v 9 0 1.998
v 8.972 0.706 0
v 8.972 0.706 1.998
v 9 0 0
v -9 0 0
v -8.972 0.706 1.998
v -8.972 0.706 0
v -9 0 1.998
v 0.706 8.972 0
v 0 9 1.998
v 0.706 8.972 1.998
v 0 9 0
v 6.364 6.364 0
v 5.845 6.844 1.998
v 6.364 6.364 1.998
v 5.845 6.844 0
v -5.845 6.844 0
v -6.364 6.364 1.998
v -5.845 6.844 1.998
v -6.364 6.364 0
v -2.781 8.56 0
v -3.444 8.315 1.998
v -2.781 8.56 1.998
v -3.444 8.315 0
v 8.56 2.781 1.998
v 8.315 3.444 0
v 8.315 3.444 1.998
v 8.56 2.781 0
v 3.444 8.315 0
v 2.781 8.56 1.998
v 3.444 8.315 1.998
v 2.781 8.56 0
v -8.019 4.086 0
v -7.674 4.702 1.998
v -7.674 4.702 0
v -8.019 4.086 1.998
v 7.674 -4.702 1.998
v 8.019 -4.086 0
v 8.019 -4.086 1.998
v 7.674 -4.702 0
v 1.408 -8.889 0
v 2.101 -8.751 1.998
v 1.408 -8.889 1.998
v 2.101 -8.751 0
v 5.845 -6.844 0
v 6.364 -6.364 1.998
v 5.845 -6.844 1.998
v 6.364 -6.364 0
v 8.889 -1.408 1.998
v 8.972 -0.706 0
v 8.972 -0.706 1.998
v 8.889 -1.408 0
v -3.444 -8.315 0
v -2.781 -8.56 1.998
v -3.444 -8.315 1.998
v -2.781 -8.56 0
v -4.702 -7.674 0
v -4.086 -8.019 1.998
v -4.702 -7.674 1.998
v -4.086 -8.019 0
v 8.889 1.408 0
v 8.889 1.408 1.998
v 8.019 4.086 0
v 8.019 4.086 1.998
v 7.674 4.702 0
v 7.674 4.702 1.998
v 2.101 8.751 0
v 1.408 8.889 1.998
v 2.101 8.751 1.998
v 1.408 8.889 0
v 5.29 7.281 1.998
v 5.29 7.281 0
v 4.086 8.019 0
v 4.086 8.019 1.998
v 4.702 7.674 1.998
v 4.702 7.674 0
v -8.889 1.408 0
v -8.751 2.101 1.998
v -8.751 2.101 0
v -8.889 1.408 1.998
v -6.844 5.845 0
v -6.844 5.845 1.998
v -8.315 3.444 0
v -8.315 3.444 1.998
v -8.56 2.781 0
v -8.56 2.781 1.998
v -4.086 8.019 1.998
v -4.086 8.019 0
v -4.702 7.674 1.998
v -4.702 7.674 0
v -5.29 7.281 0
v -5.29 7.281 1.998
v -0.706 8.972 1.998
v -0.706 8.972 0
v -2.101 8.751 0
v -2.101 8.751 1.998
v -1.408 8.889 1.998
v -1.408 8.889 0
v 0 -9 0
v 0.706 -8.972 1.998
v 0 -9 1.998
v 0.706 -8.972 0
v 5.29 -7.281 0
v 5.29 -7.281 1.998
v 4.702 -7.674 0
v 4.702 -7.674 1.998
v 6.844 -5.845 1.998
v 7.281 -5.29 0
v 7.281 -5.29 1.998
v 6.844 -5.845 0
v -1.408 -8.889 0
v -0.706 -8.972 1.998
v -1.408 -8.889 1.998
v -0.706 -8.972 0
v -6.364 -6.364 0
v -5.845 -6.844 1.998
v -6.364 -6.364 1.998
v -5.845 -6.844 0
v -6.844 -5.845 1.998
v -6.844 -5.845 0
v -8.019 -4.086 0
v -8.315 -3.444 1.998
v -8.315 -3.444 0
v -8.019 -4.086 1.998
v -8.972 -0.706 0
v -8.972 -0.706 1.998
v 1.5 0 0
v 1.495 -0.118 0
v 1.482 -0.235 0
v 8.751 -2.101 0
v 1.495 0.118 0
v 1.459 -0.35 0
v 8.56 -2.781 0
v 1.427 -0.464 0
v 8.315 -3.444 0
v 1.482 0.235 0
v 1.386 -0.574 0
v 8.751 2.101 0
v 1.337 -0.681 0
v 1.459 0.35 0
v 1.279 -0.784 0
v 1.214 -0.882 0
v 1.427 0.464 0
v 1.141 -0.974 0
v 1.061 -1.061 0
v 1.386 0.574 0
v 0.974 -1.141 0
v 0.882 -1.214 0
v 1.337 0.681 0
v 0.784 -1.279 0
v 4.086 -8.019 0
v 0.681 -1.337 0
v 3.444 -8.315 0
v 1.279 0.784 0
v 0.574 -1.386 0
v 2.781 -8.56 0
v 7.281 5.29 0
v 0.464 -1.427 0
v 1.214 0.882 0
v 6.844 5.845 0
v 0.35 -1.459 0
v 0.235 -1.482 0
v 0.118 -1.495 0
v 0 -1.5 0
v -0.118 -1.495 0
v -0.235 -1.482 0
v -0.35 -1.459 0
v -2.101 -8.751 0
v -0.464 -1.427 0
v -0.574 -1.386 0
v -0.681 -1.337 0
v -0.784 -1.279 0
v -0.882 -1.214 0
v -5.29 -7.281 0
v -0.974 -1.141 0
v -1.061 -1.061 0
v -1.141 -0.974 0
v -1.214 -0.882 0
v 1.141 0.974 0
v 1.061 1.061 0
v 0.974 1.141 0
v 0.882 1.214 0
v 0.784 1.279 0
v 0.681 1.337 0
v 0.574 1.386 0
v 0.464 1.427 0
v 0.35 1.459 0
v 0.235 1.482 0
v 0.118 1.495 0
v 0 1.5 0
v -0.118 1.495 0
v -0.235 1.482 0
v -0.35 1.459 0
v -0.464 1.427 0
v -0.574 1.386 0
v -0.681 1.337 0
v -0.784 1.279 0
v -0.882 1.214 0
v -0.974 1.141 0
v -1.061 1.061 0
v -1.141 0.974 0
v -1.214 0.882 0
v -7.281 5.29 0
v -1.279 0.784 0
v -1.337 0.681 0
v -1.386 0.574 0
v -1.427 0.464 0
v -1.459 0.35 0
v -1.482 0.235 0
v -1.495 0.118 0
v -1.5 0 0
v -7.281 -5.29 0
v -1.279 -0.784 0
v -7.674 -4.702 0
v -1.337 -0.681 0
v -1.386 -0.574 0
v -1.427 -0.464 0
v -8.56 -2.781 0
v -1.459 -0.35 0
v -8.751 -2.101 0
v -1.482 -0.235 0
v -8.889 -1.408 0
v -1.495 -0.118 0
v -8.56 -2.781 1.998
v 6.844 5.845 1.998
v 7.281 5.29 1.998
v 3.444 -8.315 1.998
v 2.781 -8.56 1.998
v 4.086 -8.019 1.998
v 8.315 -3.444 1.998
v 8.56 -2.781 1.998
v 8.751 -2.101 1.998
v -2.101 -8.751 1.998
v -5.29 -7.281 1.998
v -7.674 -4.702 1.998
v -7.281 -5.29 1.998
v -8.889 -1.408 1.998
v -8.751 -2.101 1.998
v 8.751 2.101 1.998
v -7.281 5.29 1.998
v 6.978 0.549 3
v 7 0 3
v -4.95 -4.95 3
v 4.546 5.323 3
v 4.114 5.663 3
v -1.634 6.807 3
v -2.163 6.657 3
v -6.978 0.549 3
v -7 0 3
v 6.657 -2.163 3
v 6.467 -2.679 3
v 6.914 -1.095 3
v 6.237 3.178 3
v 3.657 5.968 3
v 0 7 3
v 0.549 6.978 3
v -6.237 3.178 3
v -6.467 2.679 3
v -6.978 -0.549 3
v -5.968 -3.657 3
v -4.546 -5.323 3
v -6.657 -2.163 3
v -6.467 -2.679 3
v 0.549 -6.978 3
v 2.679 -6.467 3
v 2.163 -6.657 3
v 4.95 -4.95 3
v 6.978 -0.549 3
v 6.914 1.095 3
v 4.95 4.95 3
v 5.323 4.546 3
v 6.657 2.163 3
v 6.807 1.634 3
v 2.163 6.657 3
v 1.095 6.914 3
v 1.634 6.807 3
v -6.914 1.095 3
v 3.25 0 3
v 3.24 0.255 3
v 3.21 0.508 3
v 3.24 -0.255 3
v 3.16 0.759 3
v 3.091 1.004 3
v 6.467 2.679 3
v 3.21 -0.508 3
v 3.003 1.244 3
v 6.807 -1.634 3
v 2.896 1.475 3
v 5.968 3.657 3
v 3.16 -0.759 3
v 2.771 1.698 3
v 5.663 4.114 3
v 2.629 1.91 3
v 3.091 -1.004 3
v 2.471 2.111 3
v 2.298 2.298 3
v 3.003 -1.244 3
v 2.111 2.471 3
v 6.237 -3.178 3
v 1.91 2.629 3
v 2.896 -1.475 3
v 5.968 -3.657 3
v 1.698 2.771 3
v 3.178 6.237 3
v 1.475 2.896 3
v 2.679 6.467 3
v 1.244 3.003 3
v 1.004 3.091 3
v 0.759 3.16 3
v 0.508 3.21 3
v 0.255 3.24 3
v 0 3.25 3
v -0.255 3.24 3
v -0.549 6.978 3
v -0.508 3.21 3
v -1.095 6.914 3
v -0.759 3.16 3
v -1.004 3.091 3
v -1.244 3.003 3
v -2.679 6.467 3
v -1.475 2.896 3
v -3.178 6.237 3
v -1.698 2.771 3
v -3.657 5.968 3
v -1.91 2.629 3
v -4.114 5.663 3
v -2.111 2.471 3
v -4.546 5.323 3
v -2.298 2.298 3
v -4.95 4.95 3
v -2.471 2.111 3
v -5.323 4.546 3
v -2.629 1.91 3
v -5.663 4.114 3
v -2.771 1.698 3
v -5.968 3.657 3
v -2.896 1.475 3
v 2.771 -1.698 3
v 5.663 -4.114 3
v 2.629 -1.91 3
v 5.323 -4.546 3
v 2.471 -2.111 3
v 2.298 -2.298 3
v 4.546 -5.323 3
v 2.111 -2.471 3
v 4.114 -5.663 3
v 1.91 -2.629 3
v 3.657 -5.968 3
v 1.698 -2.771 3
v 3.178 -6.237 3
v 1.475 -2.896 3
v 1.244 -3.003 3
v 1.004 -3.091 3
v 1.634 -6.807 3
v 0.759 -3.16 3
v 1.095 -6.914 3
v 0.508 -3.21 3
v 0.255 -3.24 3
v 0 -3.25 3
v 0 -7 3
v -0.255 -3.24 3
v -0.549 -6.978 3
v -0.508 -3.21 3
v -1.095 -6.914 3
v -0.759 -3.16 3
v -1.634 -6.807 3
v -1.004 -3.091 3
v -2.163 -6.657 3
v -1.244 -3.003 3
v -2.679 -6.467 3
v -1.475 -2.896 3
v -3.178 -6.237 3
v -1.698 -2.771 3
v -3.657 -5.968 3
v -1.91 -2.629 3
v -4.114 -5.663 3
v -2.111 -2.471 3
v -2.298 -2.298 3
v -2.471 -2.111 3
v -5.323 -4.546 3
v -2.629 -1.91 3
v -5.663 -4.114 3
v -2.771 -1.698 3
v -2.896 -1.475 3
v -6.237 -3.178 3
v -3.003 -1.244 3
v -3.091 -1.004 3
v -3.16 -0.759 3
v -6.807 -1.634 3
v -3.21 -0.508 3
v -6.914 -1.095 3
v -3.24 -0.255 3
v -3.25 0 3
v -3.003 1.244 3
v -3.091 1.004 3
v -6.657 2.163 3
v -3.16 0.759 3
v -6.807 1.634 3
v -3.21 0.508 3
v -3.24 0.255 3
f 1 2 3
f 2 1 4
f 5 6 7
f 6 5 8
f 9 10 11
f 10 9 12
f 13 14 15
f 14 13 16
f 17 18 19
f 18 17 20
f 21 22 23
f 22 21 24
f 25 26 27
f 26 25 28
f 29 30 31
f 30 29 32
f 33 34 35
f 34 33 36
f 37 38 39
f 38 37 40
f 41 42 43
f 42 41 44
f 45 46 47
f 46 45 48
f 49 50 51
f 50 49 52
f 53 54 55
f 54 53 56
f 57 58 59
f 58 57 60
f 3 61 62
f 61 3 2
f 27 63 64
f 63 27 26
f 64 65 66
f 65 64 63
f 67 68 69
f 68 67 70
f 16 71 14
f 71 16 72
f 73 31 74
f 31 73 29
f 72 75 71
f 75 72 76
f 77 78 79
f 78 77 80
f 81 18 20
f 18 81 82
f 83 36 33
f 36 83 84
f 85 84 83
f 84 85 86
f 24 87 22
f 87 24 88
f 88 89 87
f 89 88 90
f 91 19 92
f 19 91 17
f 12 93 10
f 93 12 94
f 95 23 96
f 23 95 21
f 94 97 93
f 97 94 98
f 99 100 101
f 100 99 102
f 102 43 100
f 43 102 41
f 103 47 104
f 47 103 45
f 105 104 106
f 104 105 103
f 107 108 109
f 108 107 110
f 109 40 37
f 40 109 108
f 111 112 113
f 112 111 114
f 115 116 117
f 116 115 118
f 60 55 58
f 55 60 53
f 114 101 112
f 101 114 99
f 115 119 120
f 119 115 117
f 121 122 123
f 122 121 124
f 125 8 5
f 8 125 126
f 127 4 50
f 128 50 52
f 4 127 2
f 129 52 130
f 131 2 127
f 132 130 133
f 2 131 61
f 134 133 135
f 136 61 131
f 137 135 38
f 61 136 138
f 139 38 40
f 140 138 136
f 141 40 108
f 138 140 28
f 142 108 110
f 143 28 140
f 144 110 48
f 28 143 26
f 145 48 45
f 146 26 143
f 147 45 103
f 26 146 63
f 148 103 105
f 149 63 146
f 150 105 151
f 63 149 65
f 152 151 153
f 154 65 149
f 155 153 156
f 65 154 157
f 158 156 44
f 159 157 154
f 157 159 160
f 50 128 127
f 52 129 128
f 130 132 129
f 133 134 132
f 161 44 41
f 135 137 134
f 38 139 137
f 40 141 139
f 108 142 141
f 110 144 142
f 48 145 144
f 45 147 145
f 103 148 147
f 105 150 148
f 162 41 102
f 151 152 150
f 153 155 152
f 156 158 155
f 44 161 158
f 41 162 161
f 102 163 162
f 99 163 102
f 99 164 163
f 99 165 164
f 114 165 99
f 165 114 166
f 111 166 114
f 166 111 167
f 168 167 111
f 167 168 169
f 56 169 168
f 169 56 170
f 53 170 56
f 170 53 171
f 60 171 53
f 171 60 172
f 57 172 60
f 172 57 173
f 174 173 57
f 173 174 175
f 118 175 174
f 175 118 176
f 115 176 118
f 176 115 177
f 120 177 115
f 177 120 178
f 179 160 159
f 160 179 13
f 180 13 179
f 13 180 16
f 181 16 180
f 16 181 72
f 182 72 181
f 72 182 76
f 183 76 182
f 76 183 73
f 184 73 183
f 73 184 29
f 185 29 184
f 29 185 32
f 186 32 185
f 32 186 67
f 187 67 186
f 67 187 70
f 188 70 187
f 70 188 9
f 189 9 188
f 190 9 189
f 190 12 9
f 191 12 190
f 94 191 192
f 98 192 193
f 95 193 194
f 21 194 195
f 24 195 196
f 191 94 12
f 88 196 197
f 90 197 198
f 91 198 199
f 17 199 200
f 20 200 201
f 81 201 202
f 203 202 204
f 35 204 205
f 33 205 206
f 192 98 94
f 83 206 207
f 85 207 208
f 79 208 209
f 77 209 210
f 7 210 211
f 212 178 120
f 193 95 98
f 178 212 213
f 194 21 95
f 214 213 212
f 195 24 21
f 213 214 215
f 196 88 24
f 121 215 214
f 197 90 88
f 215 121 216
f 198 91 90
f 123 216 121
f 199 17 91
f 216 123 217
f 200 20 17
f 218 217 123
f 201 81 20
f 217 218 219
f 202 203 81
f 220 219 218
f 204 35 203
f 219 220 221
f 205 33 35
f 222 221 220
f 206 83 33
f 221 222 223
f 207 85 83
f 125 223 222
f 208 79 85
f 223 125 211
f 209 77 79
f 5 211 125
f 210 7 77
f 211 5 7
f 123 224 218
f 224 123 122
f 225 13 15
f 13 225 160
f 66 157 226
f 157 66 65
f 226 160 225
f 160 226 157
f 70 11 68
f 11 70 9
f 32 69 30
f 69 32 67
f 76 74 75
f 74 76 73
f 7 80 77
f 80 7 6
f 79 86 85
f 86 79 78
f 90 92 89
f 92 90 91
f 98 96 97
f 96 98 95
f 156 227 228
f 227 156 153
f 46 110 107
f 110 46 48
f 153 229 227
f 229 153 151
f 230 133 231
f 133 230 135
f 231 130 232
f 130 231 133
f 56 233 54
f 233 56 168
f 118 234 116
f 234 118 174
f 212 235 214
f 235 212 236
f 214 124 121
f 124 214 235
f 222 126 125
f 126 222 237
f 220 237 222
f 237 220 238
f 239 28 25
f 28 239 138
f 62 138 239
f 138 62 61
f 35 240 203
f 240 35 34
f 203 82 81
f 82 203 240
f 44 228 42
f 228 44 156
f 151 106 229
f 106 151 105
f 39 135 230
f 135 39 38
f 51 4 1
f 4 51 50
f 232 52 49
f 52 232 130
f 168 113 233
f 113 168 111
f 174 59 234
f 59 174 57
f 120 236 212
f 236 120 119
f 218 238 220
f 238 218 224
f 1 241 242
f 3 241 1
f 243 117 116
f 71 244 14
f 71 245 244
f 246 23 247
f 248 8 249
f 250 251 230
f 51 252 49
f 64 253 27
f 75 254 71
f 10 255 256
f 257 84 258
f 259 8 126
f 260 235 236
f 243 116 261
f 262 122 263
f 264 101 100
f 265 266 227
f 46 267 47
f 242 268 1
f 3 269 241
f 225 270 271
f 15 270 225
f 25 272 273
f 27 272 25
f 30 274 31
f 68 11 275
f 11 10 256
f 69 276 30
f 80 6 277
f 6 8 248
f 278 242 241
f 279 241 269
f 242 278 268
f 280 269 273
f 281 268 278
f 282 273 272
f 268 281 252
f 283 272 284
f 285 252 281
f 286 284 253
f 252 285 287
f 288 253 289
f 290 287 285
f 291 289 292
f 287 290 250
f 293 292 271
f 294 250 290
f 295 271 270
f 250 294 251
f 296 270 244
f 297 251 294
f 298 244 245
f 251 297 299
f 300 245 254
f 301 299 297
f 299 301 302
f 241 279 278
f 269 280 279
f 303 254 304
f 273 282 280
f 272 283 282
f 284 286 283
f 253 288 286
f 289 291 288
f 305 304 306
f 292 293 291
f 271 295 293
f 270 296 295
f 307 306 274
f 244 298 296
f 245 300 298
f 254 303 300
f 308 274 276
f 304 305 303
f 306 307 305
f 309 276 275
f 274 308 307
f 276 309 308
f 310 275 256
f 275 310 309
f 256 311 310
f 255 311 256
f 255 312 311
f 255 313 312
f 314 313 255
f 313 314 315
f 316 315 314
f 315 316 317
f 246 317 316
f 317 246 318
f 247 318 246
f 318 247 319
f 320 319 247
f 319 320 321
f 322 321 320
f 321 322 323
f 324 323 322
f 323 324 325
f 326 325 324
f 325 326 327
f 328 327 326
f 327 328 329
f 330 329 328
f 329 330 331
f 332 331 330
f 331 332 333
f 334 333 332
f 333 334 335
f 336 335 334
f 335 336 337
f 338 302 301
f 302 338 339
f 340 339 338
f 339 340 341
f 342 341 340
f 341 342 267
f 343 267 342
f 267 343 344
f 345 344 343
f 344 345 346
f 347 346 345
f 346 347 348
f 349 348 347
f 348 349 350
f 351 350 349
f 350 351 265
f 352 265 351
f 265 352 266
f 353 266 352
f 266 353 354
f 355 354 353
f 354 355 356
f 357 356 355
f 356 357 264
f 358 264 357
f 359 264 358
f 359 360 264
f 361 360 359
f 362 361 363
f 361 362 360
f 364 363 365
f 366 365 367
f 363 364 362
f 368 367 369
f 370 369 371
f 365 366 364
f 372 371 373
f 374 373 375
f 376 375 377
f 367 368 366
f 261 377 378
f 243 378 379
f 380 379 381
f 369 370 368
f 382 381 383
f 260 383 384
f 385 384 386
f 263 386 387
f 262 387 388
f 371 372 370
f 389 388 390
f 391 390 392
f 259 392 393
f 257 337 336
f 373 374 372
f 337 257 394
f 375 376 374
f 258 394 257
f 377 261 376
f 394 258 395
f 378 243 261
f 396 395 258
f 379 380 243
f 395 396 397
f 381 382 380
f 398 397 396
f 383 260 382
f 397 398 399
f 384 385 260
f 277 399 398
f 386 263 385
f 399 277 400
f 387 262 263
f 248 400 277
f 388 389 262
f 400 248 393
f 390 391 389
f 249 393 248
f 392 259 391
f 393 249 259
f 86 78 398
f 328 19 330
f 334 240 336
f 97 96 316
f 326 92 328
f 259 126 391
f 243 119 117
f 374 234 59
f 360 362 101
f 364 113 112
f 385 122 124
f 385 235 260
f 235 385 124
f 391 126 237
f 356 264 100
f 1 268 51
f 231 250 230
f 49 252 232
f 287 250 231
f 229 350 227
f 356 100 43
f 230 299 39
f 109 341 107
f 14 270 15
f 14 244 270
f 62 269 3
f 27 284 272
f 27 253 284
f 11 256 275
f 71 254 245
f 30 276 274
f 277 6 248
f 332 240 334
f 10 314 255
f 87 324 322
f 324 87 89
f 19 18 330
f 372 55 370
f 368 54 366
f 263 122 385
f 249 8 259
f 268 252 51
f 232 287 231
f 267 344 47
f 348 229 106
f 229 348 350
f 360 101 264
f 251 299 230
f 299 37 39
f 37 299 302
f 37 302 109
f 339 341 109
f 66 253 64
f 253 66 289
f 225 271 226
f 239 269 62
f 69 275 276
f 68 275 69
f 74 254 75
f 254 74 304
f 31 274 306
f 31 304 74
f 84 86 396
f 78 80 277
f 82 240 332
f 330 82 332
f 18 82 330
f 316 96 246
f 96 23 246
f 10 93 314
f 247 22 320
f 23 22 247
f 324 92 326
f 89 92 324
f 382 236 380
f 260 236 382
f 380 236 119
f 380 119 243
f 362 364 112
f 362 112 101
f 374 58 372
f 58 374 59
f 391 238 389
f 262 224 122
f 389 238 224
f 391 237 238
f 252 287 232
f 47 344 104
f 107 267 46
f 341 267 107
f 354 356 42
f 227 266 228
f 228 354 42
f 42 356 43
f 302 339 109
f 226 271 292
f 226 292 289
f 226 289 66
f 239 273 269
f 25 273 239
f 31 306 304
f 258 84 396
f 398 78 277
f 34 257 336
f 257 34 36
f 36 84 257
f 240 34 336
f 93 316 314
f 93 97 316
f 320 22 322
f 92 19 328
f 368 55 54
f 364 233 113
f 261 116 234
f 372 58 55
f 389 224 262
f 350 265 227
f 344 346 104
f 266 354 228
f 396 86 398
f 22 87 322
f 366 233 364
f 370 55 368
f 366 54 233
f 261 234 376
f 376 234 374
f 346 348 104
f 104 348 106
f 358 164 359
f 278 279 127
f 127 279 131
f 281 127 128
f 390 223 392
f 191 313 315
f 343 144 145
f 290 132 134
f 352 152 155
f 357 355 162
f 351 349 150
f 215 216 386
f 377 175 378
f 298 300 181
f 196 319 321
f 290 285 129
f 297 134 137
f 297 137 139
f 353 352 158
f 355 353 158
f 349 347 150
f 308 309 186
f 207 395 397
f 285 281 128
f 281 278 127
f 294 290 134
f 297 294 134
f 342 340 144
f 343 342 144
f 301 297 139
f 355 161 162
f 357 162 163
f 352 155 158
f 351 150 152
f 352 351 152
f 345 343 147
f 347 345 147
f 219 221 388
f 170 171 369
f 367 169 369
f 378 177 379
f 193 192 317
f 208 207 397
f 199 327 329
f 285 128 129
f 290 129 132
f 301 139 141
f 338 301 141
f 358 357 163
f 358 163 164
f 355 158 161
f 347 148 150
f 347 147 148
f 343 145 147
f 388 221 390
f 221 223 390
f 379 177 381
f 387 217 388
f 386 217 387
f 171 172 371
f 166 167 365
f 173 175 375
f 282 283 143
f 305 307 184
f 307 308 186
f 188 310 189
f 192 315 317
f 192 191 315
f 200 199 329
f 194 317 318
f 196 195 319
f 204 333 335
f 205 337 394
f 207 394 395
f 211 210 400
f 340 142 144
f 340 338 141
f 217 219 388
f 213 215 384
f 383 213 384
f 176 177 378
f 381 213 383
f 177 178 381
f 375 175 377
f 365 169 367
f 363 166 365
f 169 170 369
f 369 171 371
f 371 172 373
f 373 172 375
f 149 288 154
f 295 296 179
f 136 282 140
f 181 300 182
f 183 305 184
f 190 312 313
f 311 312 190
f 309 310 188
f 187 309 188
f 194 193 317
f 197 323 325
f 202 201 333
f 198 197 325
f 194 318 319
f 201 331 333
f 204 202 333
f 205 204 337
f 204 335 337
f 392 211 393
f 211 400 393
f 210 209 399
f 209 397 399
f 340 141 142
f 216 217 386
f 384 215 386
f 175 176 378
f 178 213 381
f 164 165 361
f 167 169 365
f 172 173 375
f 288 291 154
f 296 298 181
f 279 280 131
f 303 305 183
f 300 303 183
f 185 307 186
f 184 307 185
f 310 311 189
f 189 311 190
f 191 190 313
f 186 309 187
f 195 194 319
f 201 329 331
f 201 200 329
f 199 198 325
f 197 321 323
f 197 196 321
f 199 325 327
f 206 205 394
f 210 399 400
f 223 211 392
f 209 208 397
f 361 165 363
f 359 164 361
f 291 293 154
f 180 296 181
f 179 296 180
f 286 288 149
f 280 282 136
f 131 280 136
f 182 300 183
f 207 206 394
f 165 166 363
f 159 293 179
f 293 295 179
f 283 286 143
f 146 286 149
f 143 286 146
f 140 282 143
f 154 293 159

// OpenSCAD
$fn=80;
HEIGHT=3;
SPLIT=.666;
difference() {
    union() {
        
        cylinder(d=18, h=SPLIT*HEIGHT);
        translate([0,0,SPLIT*HEIGHT])
            cylinder(d1=18,d2=14,h=(1-SPLIT)*HEIGHT);
    }
    cylinder(d1=3,d2=6.5,h=HEIGHT);
}
